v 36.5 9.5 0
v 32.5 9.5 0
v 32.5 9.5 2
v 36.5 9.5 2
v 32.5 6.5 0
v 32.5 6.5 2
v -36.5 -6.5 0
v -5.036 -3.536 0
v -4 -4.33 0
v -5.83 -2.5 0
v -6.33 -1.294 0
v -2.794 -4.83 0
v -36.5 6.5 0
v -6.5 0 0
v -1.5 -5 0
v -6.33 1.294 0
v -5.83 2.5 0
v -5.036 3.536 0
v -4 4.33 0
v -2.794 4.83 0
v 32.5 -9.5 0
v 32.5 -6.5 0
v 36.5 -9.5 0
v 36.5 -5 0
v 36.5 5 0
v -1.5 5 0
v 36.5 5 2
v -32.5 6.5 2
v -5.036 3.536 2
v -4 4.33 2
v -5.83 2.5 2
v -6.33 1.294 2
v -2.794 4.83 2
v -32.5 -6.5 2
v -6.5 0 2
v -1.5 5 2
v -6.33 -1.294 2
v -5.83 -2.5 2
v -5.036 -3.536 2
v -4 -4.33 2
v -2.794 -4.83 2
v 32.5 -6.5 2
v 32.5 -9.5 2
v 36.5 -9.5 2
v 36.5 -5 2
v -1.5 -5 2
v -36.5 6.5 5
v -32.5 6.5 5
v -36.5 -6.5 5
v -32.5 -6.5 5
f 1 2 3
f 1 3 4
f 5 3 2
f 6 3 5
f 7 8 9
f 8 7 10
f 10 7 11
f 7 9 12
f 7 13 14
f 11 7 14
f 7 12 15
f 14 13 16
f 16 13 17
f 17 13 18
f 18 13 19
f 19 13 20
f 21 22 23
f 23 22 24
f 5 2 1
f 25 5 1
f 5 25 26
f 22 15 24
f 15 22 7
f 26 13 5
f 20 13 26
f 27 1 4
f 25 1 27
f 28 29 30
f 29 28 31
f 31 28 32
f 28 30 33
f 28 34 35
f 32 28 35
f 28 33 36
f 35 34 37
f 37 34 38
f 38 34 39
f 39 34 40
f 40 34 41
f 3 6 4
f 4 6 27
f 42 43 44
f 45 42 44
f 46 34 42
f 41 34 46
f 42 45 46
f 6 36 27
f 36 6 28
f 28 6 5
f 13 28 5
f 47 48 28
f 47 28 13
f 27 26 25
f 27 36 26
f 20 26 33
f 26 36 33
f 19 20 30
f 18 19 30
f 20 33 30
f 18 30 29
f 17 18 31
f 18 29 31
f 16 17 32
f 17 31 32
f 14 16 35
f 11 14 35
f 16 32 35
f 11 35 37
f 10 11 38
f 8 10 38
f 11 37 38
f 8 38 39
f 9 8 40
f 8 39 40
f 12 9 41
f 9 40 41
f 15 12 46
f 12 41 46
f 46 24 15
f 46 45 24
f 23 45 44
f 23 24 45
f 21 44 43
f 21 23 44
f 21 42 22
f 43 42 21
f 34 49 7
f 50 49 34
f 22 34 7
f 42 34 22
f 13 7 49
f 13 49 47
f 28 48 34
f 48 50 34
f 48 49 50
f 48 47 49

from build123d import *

# Parameters (mm, degrees)
SKETCH_W        = 73
SKETCH_H        = 19
PAD_DEPTH       = 5
SKETCH001_W     = 69
SKETCH001_H     = 3
POCKET_DEPTH    = 5.001
SKETCH002_W     = 69
SKETCH002_H     = 3
POCKET001_DEPTH = 19.001
POCKET002_DEPTH = 2.001


with BuildPart() as part:
    # Sketch → Pad (new body)
    with BuildSketch(Plane.XY):
        Rectangle(SKETCH_W, SKETCH_H)
    extrude(amount=PAD_DEPTH)

    # Sketch001 → Pocket (cut, through all)
    with BuildSketch(Plane.XY.offset(5)):
        with Locations((-2, 8)):
            Rectangle(SKETCH001_W, SKETCH001_H)
        with Locations((-2, -8)):
            Rectangle(SKETCH001_W, SKETCH001_H)
    extrude(amount=-POCKET_DEPTH, mode=Mode.SUBTRACT)

    # Sketch002 → Pocket001 (cut, through all)
    with BuildSketch(Plane.XZ.offset(9.5)):
        with Locations((2, 3.5)):
            Rectangle(SKETCH002_W, SKETCH002_H)
    extrude(amount=-POCKET001_DEPTH, mode=Mode.SUBTRACT)

    # Sketch003 → Pocket002 (cut, through all)
    with BuildSketch(Plane.XY.offset(2)):
        with BuildLine():
            Line((-1.5, 5), (36.5, 5))
            Line((36.5, 5), (36.5, -5))
            Line((36.5, -5), (-1.5, -5))
            ThreePointArc((-1.5, 5), (-6.5, 0), (-1.5, -5))
        make_face()
    extrude(amount=-POCKET002_DEPTH, mode=Mode.SUBTRACT)


solid = part.part
